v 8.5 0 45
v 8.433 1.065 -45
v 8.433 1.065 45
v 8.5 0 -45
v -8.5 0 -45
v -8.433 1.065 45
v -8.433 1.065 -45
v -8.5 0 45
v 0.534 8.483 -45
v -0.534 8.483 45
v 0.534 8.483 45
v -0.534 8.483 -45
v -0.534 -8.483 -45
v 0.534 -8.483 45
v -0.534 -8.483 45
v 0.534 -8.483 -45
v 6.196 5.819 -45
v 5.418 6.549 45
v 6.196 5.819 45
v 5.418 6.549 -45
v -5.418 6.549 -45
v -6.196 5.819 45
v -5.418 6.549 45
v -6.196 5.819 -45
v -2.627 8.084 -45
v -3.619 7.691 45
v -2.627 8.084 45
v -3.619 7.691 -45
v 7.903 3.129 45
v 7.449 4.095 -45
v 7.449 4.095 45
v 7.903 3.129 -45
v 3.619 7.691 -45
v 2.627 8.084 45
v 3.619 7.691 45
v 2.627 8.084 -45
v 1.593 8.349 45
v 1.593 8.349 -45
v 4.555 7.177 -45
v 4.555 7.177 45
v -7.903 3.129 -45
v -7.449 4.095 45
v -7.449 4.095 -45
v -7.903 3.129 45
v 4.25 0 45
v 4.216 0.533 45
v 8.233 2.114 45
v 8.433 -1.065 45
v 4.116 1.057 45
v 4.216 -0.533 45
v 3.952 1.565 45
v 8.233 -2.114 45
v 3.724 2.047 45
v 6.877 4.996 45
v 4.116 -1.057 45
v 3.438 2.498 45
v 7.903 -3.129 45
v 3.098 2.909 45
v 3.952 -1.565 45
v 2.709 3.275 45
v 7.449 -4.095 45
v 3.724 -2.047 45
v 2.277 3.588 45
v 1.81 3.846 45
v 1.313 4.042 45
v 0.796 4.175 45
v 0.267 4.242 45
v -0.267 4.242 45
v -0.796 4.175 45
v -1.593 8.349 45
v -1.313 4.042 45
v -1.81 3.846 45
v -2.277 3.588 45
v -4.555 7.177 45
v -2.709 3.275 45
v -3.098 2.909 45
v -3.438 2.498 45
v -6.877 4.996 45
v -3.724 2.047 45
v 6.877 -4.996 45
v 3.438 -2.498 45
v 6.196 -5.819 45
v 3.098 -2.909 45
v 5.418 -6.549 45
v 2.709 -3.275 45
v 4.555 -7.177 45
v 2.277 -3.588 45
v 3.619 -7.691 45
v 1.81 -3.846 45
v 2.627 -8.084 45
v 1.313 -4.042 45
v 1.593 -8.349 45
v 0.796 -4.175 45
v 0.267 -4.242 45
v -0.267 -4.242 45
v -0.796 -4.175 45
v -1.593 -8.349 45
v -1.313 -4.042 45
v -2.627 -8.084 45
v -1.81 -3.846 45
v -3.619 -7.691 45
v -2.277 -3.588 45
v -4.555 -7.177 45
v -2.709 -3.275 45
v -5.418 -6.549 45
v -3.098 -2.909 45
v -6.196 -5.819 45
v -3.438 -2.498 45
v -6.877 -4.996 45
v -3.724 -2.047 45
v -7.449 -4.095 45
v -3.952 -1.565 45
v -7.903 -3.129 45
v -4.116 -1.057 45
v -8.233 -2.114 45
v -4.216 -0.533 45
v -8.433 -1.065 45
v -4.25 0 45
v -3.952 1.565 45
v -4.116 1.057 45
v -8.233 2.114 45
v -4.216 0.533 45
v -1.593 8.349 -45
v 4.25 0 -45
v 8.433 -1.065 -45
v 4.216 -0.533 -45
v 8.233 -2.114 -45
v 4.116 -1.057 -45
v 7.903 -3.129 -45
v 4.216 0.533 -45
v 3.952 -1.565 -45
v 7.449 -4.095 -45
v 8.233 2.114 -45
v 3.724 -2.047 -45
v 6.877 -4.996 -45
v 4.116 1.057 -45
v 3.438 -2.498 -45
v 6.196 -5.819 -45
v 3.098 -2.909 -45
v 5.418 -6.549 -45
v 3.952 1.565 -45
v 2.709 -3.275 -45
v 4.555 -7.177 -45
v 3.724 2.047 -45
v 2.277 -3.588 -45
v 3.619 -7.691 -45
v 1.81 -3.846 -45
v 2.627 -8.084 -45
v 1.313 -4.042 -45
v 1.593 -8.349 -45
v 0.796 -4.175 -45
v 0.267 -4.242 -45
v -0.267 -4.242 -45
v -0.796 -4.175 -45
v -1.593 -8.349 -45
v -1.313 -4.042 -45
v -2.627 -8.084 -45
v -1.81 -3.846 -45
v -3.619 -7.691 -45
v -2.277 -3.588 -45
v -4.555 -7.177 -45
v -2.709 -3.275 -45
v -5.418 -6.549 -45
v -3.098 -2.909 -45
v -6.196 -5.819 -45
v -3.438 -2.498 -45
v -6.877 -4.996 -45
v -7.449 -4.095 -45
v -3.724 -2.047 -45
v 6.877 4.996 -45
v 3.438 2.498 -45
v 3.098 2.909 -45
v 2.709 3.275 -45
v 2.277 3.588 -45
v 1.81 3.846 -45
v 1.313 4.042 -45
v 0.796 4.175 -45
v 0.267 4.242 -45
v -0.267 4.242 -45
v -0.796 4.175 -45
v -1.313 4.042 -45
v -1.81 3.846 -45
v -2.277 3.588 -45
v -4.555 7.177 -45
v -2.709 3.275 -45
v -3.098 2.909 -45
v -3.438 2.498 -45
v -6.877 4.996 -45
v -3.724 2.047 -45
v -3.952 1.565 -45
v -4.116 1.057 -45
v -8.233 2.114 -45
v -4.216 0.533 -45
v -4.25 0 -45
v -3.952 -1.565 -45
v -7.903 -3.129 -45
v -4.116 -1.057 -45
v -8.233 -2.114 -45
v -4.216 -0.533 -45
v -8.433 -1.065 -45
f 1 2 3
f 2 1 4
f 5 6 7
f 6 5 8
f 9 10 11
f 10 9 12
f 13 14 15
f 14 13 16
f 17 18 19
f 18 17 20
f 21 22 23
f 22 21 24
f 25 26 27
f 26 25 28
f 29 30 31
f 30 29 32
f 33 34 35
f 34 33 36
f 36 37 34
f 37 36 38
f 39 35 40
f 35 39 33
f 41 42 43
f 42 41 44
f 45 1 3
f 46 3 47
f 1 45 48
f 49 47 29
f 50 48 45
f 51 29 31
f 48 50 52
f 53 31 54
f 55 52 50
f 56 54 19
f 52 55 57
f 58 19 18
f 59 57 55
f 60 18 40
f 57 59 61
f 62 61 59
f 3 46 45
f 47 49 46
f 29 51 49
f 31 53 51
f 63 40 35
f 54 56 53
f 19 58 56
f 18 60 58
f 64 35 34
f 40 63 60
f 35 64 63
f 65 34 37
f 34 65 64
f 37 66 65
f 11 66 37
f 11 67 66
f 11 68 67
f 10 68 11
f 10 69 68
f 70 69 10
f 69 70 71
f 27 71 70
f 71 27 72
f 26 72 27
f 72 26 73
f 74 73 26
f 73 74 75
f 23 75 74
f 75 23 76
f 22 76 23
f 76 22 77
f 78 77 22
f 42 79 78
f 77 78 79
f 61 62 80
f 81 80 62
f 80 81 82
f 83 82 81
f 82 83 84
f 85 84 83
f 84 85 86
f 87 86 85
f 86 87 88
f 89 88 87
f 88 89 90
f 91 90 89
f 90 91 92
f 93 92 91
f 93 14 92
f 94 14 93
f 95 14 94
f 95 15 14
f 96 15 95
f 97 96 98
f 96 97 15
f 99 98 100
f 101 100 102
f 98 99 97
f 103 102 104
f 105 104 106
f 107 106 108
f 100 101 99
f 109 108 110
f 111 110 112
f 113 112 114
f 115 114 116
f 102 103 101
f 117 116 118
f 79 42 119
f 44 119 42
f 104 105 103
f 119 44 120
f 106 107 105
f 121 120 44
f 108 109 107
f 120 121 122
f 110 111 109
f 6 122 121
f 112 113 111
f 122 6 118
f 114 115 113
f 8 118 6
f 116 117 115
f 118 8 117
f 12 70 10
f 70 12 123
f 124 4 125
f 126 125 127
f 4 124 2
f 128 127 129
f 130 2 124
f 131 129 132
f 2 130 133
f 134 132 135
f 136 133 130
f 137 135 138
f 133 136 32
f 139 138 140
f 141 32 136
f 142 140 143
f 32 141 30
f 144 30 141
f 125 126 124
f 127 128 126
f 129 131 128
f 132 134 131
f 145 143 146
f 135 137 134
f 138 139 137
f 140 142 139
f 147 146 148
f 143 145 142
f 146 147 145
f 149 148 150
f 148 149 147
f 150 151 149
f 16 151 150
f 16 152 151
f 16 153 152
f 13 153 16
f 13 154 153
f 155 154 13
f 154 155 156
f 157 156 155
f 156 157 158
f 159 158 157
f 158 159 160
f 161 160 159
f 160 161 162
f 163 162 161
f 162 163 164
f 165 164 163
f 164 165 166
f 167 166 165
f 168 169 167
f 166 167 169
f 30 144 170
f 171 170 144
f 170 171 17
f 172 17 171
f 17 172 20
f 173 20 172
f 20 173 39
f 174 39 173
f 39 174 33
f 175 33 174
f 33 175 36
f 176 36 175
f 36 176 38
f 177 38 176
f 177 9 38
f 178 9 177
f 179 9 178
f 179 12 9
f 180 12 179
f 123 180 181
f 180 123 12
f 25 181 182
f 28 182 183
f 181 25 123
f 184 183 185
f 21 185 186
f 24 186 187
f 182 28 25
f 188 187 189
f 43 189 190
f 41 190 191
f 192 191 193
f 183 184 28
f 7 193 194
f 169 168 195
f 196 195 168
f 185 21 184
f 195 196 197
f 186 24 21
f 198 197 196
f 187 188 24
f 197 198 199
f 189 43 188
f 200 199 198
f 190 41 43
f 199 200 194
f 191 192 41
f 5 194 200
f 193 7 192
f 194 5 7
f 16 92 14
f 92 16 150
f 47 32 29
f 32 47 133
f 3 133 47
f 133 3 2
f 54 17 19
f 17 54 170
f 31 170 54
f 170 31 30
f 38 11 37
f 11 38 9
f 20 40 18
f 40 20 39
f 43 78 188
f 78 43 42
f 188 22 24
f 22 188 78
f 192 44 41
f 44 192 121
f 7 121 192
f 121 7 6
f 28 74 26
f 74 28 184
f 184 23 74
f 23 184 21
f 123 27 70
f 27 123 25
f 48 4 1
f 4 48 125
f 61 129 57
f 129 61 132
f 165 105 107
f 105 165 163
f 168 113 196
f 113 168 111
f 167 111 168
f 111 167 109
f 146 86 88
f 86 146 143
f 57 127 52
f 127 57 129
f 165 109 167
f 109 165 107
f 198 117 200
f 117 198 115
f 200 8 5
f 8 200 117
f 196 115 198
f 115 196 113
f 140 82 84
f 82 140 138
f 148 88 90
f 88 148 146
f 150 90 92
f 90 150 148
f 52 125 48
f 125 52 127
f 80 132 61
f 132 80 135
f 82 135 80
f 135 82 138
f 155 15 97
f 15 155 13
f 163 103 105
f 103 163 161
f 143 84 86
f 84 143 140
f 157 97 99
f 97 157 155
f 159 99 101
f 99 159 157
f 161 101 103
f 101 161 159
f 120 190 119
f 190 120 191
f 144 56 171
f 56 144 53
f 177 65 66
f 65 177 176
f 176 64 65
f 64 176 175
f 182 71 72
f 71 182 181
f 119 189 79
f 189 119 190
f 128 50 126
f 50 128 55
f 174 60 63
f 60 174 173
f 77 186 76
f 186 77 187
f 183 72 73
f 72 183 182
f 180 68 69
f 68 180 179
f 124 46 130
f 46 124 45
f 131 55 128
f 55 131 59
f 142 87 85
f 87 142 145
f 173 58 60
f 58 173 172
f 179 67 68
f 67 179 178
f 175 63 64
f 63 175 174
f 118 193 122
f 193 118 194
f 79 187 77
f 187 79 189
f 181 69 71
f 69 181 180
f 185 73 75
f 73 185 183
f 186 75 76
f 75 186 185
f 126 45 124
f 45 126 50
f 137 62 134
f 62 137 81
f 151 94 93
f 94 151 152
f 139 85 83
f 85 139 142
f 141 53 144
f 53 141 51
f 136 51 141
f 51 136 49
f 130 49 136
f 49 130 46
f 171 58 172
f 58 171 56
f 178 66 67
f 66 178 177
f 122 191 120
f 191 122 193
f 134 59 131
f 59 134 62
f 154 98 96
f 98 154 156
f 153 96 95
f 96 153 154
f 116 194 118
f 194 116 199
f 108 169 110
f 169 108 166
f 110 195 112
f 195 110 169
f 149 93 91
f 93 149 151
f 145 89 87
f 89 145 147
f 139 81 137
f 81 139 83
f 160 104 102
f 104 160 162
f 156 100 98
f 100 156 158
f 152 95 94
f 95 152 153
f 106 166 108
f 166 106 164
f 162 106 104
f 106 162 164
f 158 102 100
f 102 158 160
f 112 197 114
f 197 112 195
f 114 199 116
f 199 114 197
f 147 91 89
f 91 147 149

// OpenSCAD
$fn = 50;


difference() {
	union() {
		translate(v = [0, 0, -45.0000000000]) {
			cylinder(h = 90, r = 8.5000000000);
		}
	}
	union() {
		translate(v = [0, 0, -100.0000000000]) {
			cylinder(h = 200, r = 4.2500000000);
		}
	}
}
